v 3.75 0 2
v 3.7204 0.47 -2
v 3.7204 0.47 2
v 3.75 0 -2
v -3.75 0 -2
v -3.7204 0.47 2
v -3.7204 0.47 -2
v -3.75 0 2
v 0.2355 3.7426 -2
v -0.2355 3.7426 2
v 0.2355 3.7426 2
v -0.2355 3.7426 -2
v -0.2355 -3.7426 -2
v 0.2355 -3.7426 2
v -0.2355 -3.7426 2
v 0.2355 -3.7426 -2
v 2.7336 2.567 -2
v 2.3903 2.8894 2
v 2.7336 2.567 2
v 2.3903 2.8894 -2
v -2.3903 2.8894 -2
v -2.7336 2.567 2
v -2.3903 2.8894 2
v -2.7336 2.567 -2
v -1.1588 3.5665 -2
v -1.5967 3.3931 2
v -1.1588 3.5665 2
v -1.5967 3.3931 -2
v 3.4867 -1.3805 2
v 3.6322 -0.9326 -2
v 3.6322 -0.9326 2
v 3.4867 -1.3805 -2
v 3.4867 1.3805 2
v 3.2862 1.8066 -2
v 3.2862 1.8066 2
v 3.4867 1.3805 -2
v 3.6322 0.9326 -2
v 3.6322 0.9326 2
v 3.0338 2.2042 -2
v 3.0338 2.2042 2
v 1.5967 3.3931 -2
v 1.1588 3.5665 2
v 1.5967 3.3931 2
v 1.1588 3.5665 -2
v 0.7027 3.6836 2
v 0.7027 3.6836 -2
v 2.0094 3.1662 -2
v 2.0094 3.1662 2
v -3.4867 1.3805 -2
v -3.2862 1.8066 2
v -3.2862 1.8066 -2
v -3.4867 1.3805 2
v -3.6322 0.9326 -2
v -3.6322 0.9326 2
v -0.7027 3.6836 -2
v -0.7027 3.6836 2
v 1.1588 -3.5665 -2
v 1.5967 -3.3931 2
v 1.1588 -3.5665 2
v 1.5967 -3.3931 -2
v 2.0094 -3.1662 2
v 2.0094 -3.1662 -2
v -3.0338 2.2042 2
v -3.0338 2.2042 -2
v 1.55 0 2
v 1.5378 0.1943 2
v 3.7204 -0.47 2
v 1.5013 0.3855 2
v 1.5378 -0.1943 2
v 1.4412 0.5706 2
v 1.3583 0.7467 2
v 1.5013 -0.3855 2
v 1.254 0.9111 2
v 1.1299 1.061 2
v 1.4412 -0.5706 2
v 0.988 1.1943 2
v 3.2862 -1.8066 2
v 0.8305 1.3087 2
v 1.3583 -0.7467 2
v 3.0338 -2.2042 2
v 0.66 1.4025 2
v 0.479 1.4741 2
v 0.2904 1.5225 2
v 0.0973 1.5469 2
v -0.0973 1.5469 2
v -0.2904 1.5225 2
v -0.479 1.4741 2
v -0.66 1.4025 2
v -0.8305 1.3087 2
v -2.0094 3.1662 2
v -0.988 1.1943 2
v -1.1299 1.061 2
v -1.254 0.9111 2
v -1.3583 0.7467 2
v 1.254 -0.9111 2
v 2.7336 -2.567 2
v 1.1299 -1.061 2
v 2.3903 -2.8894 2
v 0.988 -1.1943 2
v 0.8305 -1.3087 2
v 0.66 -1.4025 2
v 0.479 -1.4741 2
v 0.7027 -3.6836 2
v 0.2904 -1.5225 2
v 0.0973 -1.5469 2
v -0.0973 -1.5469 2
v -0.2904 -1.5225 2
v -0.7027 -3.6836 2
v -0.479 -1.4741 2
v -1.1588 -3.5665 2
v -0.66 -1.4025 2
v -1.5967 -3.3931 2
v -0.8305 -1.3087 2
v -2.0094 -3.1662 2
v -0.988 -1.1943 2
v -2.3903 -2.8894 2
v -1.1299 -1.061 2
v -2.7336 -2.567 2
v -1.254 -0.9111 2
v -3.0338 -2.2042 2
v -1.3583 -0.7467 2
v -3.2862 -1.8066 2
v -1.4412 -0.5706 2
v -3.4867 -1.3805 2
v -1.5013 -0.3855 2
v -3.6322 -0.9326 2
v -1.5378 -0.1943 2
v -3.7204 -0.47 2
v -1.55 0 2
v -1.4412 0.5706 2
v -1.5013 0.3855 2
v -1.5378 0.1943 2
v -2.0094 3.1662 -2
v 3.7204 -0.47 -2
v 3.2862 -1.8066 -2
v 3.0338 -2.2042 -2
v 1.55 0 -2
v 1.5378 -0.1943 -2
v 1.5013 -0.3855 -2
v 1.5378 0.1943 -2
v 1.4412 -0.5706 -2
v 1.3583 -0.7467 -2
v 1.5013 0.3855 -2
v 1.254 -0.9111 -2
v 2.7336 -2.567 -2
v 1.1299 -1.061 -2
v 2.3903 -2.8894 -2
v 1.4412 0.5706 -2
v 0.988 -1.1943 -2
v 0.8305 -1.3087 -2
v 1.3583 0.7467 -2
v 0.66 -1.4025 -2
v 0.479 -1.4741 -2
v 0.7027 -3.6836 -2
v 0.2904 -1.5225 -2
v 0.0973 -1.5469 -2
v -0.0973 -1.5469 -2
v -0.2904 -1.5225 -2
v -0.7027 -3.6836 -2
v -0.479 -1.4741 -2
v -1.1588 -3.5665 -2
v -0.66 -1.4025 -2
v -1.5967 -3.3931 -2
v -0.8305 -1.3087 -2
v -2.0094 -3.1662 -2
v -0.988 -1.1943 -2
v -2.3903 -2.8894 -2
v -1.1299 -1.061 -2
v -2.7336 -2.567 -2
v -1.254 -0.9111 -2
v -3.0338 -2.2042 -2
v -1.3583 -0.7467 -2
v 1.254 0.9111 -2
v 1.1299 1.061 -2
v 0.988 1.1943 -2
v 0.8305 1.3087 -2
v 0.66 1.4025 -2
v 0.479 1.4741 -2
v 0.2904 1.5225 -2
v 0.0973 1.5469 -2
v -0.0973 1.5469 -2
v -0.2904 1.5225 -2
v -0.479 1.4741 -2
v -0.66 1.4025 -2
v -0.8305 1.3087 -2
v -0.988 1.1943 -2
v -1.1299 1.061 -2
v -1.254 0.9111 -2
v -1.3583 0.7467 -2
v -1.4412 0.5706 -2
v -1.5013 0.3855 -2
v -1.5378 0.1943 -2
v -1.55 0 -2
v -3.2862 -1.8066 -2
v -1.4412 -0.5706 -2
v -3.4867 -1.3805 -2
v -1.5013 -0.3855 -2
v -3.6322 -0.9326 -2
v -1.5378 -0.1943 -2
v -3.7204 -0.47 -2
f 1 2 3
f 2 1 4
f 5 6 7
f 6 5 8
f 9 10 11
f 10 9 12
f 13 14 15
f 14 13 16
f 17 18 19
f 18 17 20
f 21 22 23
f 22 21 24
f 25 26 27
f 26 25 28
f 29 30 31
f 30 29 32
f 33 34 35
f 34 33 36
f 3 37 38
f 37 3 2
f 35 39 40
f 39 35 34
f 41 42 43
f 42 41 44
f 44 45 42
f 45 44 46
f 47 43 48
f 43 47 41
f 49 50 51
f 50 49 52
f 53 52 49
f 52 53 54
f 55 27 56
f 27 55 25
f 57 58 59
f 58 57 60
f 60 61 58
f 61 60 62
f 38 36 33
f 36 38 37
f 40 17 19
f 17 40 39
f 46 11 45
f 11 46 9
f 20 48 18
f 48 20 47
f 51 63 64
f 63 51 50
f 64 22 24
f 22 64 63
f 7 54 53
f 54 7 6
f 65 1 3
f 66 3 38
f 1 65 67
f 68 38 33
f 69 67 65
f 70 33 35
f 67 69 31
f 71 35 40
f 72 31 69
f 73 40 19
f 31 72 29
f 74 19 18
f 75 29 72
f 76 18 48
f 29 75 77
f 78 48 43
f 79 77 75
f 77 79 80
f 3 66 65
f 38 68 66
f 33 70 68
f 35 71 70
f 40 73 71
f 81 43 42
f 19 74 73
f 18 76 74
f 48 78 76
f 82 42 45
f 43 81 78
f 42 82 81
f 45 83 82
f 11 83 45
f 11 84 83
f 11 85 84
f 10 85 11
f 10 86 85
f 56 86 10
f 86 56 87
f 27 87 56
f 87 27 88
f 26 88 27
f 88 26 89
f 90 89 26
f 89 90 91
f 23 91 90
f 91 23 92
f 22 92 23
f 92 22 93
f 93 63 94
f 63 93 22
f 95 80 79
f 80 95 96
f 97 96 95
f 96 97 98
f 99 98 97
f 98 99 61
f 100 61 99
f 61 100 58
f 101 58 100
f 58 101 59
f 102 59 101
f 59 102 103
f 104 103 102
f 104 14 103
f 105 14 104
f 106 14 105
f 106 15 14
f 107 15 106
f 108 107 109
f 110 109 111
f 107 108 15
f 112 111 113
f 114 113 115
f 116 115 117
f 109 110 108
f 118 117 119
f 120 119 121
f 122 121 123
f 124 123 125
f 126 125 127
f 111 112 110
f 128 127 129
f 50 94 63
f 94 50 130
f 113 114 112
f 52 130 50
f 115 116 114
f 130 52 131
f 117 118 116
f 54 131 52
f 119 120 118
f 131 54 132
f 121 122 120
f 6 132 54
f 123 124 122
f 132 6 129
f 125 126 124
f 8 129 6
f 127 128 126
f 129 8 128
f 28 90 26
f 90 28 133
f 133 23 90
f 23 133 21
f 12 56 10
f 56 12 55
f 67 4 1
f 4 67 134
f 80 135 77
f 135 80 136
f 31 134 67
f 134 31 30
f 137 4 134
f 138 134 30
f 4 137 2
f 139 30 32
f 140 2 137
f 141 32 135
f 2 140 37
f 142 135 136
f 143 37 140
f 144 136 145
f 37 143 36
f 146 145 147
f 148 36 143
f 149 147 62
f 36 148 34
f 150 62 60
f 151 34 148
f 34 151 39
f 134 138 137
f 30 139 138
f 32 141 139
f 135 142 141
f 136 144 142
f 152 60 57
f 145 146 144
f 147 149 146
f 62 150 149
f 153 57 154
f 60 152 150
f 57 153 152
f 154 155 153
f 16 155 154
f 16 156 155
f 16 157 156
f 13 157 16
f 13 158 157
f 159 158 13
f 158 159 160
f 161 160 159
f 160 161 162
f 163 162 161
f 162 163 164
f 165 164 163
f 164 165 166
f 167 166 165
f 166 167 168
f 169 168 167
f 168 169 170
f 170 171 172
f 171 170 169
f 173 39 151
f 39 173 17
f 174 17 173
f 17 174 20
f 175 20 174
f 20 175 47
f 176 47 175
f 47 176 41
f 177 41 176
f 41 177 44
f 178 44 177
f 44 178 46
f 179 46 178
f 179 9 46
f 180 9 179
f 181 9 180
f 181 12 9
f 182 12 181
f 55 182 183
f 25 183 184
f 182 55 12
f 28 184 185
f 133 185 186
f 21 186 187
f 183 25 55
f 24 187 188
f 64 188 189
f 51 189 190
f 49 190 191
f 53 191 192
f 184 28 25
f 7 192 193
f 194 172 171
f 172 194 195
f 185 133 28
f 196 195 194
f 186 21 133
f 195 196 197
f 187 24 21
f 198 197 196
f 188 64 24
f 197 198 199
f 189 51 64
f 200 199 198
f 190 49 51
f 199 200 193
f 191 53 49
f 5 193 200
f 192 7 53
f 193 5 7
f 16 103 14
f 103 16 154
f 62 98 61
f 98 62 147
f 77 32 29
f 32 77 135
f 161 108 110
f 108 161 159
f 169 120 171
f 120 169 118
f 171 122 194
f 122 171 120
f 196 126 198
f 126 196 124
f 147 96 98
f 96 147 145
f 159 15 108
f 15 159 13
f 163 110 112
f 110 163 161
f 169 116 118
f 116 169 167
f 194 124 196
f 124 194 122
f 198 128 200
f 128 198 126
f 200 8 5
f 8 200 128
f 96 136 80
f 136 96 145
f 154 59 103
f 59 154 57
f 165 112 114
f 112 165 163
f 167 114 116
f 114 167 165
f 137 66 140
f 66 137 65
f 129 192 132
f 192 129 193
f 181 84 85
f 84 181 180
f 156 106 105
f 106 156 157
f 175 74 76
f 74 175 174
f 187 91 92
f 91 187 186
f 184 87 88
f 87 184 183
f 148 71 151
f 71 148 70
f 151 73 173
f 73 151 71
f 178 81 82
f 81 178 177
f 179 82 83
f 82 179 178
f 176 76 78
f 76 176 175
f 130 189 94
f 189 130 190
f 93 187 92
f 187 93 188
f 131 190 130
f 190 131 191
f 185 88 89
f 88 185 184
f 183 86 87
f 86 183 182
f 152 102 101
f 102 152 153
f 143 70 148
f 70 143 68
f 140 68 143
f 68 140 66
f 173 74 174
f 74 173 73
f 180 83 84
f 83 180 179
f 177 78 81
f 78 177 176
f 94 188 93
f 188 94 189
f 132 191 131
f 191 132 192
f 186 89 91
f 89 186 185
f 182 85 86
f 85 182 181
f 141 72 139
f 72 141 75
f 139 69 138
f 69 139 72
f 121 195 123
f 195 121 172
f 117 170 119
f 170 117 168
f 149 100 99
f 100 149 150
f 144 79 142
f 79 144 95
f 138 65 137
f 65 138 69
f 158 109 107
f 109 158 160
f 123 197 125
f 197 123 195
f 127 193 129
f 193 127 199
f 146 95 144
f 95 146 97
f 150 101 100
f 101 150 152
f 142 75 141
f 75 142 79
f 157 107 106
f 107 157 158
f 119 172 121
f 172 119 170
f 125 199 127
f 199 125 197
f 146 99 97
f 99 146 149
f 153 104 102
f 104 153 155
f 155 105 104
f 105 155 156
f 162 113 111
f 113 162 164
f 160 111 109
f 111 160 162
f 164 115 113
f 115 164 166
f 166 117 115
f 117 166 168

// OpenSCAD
$fn = 50;


difference() {
	union() {
		translate(v = [0, 0, -2.0000000000]) {
			cylinder(h = 4, r = 3.7500000000);
		}
	}
	union() {
		translate(v = [0, 0, -100.0000000000]) {
			cylinder(h = 200, r = 1.5500000000);
		}
	}
}
